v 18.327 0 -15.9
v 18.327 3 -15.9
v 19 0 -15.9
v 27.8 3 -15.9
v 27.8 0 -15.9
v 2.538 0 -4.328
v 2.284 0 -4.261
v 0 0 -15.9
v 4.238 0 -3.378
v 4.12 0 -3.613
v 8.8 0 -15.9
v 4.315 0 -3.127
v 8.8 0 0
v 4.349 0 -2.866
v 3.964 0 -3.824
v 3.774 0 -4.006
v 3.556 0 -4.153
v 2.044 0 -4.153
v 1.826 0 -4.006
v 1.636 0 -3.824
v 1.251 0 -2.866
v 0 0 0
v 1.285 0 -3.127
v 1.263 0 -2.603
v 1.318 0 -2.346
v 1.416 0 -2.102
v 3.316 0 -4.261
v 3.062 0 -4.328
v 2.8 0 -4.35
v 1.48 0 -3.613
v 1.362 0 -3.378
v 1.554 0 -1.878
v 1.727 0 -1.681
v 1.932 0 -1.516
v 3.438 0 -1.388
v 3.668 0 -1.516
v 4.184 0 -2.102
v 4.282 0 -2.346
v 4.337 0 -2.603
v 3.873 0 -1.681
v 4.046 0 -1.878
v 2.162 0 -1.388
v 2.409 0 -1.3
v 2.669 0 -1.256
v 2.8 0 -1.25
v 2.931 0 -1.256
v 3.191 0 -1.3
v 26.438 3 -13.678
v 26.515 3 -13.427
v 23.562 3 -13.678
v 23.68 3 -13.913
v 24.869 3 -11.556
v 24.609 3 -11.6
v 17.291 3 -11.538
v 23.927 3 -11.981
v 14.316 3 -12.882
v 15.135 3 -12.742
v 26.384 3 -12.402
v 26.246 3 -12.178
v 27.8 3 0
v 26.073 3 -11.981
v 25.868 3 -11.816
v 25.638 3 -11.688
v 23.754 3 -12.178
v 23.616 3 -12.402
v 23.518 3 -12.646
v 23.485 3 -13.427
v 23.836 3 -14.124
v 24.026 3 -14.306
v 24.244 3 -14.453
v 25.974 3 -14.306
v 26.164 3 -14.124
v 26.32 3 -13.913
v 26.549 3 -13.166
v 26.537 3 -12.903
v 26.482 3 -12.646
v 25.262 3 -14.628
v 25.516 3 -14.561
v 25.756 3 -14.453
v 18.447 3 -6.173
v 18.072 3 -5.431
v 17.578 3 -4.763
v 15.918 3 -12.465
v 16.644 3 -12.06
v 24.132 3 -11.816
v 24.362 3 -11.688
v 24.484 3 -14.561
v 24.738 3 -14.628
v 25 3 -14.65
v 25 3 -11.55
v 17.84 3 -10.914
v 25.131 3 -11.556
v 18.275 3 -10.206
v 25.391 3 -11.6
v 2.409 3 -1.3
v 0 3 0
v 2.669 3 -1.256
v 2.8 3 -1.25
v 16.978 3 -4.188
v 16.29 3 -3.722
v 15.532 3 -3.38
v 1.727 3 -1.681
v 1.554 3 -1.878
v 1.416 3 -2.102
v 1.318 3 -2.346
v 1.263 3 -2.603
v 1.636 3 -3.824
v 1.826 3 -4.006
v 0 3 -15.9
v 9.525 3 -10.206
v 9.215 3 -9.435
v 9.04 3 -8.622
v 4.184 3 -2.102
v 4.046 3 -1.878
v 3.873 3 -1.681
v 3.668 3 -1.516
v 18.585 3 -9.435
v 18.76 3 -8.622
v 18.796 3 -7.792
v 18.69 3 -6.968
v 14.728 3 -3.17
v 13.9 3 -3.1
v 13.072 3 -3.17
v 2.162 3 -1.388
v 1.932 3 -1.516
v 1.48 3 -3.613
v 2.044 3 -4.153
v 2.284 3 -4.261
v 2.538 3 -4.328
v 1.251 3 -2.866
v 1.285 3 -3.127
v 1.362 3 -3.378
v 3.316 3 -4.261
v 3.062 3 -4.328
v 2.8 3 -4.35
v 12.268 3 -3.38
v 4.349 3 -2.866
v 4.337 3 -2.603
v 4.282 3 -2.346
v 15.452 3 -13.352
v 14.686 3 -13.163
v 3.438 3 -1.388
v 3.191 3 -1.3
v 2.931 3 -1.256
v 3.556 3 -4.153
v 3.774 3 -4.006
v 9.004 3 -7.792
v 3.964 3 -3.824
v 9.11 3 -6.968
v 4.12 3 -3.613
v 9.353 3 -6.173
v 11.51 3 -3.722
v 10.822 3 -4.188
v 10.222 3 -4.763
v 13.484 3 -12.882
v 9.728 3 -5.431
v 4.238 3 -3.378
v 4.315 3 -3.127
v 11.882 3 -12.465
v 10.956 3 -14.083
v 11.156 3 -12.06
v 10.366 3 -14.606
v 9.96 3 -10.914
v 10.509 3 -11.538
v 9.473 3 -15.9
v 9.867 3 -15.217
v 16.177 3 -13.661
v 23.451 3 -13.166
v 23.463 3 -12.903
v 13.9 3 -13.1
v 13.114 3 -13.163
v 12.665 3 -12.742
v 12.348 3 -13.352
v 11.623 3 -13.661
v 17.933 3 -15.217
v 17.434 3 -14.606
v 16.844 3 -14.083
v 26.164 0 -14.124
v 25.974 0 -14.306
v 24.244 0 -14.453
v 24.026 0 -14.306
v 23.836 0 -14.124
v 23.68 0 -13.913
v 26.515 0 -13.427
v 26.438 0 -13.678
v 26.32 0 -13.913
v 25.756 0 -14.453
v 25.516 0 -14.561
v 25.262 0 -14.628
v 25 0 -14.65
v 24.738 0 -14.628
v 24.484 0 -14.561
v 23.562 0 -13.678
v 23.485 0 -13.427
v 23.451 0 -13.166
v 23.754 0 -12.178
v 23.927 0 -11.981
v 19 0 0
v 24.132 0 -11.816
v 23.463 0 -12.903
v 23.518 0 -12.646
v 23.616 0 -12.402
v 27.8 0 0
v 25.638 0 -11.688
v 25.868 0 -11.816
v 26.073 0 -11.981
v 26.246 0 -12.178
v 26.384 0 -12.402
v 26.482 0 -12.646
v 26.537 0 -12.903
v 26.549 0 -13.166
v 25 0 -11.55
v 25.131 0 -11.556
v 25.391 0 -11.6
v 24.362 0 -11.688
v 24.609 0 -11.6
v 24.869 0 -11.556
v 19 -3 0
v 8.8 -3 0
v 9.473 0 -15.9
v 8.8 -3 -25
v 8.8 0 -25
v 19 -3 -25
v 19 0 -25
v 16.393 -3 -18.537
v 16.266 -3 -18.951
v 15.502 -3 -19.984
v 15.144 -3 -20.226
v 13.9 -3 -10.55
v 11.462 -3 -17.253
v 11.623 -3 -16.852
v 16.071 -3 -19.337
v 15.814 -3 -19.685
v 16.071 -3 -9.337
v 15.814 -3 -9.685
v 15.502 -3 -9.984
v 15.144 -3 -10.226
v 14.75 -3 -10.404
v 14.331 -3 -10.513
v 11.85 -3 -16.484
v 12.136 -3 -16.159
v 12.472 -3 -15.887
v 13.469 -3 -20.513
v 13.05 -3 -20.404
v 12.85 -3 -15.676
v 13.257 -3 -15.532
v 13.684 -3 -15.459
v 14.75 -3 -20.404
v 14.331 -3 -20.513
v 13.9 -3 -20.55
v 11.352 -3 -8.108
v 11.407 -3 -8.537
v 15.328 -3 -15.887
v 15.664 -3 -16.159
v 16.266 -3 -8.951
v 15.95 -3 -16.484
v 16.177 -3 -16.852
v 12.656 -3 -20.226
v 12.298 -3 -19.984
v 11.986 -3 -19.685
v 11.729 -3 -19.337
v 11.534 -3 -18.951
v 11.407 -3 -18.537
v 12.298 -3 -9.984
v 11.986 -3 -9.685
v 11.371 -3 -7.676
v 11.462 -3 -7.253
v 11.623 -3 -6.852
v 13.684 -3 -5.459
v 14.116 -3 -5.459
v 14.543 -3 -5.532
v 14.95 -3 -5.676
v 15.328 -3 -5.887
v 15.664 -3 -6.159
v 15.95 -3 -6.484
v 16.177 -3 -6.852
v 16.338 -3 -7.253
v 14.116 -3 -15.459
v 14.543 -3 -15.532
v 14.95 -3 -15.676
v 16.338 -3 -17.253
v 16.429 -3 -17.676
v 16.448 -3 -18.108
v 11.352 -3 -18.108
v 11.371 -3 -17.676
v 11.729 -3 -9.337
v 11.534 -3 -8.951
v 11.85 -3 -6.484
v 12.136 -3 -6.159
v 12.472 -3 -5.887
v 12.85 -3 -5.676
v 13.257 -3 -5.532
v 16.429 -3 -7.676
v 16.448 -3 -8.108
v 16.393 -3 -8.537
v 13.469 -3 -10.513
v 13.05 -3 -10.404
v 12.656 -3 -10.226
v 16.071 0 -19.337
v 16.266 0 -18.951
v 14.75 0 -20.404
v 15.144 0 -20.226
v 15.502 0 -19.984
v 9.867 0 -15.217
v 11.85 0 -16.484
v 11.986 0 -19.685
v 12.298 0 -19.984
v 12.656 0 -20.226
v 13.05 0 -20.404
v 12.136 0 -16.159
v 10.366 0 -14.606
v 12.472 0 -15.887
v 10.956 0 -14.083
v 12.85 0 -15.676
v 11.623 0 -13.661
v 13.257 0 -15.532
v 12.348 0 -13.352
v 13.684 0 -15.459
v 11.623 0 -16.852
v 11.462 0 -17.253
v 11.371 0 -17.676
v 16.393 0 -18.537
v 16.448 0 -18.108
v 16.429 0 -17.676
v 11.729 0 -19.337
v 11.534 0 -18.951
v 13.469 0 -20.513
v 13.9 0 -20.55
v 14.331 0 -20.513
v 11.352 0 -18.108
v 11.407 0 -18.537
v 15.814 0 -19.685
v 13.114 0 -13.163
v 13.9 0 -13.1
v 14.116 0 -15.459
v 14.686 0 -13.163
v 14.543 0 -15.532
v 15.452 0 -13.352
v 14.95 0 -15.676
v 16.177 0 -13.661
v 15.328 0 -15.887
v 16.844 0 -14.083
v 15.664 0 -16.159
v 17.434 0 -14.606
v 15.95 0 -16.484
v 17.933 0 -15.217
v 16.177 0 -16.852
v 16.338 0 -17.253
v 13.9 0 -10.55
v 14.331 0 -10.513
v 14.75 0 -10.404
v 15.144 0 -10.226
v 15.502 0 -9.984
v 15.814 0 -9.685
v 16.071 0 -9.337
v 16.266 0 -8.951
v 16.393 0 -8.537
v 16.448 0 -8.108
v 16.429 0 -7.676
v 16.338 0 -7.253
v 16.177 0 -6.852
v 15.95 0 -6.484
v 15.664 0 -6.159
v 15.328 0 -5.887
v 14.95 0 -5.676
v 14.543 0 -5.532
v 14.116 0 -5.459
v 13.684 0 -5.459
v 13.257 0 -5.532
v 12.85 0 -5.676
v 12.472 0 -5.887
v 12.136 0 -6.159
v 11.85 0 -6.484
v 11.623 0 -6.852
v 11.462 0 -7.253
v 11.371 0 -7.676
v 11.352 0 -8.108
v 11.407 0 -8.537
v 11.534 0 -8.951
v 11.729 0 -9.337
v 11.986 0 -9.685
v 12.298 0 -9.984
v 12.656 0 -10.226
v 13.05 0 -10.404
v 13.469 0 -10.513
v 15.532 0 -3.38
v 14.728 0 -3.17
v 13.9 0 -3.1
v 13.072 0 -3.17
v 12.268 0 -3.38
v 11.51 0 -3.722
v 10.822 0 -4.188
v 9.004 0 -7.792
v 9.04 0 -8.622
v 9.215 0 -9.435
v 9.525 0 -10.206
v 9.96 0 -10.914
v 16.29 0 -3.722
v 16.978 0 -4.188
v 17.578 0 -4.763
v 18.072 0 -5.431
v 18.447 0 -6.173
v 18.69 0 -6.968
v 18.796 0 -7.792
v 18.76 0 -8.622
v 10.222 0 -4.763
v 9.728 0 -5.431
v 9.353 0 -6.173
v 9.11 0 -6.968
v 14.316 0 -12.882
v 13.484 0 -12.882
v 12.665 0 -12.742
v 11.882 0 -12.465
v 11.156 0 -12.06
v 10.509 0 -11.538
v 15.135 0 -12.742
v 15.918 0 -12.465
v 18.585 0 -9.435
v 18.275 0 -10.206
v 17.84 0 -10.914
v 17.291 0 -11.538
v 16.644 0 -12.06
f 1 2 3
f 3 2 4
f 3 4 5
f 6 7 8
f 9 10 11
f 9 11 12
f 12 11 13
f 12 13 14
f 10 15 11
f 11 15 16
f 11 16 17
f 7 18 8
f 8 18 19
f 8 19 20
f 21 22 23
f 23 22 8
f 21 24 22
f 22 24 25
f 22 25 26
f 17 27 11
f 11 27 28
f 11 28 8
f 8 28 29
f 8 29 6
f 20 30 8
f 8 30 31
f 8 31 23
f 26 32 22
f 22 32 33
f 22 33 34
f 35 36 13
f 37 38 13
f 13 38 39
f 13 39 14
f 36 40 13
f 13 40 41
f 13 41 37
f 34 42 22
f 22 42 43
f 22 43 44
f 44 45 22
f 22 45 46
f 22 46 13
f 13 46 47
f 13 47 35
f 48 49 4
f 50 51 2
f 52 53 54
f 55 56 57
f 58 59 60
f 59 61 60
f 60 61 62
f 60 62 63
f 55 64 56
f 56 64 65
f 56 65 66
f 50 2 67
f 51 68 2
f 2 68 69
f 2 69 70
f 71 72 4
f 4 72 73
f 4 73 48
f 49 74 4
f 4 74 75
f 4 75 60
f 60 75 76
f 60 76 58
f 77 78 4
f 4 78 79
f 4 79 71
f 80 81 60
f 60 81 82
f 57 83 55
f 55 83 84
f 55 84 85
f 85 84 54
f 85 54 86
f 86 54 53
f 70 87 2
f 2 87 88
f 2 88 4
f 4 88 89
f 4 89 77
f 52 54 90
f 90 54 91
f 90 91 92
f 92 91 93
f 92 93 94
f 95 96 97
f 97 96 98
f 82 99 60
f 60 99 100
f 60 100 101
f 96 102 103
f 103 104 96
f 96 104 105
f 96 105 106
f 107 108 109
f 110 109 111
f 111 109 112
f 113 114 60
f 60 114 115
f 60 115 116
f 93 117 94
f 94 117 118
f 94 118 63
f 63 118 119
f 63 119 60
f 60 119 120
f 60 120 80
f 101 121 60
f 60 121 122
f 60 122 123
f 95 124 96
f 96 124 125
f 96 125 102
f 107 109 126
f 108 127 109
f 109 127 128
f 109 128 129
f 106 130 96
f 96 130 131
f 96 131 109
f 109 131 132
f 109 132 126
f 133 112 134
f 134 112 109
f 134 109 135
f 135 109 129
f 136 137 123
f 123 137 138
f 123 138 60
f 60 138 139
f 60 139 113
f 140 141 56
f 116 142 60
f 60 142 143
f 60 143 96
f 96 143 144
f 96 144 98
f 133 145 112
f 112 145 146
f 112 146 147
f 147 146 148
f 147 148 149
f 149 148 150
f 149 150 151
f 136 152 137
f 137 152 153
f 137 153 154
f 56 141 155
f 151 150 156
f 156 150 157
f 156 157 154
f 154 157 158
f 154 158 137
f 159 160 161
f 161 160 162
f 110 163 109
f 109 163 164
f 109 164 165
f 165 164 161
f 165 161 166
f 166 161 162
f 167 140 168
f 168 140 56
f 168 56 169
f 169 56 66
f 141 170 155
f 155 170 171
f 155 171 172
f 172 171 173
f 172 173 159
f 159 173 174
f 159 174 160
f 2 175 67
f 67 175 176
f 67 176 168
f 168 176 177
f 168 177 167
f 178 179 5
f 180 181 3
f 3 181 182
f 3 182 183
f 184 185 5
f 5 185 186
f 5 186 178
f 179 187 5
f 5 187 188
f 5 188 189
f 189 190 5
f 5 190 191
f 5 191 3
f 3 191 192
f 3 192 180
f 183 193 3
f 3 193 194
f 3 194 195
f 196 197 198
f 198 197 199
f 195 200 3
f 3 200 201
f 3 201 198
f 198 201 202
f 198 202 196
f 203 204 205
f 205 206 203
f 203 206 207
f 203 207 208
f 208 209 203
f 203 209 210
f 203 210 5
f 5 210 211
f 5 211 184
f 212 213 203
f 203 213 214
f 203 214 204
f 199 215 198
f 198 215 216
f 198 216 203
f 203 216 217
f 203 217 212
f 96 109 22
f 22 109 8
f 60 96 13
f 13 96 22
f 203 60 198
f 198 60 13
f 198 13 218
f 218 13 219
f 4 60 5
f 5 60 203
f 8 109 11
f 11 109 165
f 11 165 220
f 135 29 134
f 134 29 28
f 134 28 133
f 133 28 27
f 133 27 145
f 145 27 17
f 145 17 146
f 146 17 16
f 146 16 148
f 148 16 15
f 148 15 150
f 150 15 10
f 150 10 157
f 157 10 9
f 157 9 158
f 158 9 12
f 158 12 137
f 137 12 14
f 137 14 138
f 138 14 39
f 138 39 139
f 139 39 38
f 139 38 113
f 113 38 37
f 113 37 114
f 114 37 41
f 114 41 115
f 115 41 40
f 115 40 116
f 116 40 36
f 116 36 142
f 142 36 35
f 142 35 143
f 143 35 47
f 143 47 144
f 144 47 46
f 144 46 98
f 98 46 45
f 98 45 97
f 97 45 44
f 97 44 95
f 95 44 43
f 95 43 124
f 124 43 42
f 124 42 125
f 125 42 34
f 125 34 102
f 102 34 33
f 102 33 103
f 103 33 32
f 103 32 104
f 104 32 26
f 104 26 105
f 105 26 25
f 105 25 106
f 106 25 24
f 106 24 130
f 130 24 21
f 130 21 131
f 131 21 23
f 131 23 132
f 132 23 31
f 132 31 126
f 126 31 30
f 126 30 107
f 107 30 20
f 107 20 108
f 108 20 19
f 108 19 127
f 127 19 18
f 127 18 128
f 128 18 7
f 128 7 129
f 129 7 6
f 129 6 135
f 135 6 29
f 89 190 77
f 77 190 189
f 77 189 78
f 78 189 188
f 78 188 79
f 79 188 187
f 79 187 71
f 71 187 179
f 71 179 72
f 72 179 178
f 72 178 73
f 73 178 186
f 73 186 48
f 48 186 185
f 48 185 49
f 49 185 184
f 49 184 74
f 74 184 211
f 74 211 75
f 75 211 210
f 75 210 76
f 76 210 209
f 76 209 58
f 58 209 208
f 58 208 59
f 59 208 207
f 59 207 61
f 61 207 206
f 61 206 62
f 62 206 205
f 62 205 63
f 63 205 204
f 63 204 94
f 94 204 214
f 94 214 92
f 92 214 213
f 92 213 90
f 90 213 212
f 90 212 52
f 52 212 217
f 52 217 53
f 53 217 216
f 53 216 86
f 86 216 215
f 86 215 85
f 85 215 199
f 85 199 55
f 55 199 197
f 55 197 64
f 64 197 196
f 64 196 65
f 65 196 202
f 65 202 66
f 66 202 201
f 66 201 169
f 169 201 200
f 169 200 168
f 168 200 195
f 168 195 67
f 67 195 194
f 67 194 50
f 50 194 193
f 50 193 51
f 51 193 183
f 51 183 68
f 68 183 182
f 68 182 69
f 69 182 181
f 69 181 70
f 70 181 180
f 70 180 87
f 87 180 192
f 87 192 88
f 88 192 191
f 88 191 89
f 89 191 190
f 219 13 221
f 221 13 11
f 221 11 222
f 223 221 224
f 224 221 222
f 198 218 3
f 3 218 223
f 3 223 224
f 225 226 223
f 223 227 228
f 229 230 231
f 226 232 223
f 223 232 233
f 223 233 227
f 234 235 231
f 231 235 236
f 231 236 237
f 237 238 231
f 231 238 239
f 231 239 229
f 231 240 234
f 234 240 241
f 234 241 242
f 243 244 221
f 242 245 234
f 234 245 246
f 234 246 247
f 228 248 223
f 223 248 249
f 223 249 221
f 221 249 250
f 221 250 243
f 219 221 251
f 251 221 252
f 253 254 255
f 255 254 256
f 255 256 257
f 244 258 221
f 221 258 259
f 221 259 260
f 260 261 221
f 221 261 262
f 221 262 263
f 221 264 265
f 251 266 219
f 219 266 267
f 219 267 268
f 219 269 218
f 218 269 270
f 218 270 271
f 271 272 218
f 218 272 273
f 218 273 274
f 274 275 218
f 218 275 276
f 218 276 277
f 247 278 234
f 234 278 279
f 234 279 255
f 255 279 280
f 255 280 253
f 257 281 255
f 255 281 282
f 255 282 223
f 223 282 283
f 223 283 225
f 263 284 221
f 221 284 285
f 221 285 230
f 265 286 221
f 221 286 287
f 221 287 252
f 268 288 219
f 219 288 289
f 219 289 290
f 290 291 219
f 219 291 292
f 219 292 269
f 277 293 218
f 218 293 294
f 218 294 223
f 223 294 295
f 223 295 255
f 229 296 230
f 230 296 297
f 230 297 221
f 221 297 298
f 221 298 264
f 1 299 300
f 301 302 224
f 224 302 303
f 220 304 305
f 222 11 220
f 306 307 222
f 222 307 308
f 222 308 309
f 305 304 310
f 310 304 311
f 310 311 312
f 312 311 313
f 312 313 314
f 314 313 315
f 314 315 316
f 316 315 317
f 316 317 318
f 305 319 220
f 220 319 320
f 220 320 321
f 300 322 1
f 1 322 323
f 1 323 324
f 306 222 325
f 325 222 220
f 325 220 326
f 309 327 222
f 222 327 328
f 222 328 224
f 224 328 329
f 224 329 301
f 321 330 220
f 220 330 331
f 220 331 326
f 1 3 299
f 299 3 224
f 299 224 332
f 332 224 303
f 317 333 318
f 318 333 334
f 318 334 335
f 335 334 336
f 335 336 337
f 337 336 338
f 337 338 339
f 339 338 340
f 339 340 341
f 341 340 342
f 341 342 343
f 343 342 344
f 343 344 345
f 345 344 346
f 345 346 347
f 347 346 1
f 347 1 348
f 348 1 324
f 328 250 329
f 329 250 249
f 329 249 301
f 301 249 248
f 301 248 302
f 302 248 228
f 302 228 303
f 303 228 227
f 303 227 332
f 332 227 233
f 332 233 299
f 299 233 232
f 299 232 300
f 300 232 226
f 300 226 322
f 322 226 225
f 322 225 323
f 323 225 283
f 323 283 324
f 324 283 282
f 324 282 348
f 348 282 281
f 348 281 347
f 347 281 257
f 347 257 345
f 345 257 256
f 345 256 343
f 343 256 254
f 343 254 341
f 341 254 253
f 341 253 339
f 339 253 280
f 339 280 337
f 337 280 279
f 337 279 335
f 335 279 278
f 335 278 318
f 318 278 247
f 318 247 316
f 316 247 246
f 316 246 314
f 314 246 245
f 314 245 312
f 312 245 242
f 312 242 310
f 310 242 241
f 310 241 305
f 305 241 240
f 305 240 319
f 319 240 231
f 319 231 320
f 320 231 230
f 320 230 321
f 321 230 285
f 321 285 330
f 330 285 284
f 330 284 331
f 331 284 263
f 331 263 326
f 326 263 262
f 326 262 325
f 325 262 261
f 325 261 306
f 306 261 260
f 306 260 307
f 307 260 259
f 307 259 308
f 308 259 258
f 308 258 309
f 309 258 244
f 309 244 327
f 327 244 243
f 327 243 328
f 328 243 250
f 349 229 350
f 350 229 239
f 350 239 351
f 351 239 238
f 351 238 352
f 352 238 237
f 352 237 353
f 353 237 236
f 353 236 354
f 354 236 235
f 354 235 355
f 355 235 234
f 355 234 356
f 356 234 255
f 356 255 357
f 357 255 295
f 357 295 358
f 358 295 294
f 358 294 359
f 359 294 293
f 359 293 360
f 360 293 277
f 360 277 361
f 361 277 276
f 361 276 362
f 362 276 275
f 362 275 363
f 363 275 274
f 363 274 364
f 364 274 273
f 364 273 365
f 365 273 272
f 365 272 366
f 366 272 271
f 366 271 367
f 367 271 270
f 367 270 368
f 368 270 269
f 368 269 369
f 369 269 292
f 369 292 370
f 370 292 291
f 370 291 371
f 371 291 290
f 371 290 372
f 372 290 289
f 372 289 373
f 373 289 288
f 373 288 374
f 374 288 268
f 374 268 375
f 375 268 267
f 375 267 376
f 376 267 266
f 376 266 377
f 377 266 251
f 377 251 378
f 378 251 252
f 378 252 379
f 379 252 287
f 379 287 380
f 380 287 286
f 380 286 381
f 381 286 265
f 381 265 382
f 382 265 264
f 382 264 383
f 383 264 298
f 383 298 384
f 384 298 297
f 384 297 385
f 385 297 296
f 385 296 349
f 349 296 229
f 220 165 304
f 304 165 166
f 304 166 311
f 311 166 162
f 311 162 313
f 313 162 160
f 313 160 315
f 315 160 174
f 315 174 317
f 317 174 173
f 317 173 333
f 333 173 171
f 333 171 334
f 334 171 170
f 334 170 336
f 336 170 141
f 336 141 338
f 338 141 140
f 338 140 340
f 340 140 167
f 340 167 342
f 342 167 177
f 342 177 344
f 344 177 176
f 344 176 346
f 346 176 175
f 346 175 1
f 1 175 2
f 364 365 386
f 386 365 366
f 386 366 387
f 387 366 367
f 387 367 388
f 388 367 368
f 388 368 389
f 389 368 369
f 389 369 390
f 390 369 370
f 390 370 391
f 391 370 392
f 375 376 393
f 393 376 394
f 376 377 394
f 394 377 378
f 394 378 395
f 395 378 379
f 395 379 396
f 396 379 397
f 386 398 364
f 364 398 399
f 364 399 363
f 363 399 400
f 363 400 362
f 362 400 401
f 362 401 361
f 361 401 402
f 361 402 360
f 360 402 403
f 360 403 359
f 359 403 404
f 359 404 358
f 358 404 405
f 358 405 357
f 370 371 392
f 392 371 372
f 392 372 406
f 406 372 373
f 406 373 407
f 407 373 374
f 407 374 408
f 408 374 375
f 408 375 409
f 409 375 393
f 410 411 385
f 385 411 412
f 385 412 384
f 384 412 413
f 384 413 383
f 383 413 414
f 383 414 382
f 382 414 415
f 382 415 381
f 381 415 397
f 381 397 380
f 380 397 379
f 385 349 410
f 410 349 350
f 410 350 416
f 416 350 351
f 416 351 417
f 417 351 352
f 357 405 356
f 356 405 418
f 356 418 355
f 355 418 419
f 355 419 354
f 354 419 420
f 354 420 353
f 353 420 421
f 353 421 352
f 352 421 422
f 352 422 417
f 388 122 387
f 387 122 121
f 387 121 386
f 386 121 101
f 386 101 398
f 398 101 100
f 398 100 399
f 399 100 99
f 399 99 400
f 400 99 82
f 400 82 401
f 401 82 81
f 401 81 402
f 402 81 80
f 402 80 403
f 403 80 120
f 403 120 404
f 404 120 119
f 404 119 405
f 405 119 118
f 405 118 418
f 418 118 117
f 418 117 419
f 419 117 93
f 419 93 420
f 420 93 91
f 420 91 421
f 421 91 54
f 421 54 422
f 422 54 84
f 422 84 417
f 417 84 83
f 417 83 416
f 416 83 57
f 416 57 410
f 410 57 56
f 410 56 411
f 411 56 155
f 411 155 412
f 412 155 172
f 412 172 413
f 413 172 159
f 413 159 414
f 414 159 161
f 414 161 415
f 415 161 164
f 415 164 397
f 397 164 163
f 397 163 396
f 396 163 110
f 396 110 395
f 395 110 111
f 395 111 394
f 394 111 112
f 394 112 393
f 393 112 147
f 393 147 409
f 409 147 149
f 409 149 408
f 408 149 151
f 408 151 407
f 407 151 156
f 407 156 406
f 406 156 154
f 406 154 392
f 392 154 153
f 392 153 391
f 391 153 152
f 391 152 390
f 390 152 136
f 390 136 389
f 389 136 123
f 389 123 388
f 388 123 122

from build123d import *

# Parameters (mm, degrees)
SKETCH1_W           = 27.8
SKETCH1_H           = 15.9
SKETCH1_R           = 1.55
BOSS_EXTRUDE1_DEPTH = 3
SKETCH2_W           = 10.2
SKETCH2_H           = 25
BOSS_EXTRUDE2_DEPTH = 3
SKETCH3_R           = 2.55
CUT_EXTRUDE1_DEPTH  = 3
CUT_EXTRUDE4_START  = -3
SKETCH4_R           = 4.9
SKETCH4_R_2         = 2.55
CUT_EXTRUDE4_DEPTH  = 3


with BuildPart() as part:
    # Sketch1 → Boss-Extrude1 (new body)
    with BuildSketch(Plane(origin=(0, 0, 0), x_dir=(1, 0, 0), z_dir=(0, 1, 0))):
        with Locations((13.9, 7.95)):
            Rectangle(SKETCH1_W, SKETCH1_H)
        with Locations(Location((2.8, 2.8, 0), (0, 0, 270))):
            Circle(SKETCH1_R, mode=Mode.SUBTRACT)
        with Locations(Location((25, 13.1, 0), (0, 0, 270))):
            Circle(SKETCH1_R, mode=Mode.SUBTRACT)
    extrude(amount=BOSS_EXTRUDE1_DEPTH)

    # Sketch2 → Boss-Extrude2 (add)
    with BuildSketch(Plane.XZ):
        with Locations((13.9, -12.5)):
            Rectangle(SKETCH2_W, SKETCH2_H)
    extrude(amount=BOSS_EXTRUDE2_DEPTH)

    # Sketch3 → Cut-Extrude1 (cut)
    with BuildSketch(Plane.XZ.offset(3)):
        with Locations(Location((13.9, -8, 0), (0, 0, 270))):
            Circle(SKETCH3_R)
        with Locations(Location((13.9, -18, 0), (0, 0, 270))):
            Circle(SKETCH3_R)
    extrude(amount=-CUT_EXTRUDE1_DEPTH, mode=Mode.SUBTRACT)

    # Sketch4 → Cut-Extrude4 (cut)
    # profile 1 of 3: a face of its own
    with BuildSketch(Plane(origin=(0, 3, 0), x_dir=(1, 0, 0), z_dir=(0, 1, 0)).offset(CUT_EXTRUDE4_START)):
        with BuildLine():
            Line((18.327188724, 15.9), (15.346547614, 15.9))
            Line((15.346547614, 15.9), (12.453452386, 15.9))
            Line((12.453452386, 15.9), (9.472811276, 15.9))
            ThreePointArc((9.472811276, 15.9), (13.9, 13.1), (18.327188724, 15.9))
        make_face()
    # profile 2 of 3: a face of its own
    with BuildSketch(Plane(origin=(0, 3, 0), x_dir=(1, 0, 0), z_dir=(0, 1, 0)).offset(CUT_EXTRUDE4_START)):
        with Locations(Location((13.9, 8, 0), (0, 0, 270))):
            Circle(SKETCH4_R)
        with Locations(Location((13.9, 8, 0), (0, 0, 90))):
            Circle(SKETCH4_R_2, mode=Mode.SUBTRACT)
    # profile 3 of 3: a face of its own
    with BuildSketch(Plane(origin=(0, 3, 0), x_dir=(1, 0, 0), z_dir=(0, 1, 0)).offset(CUT_EXTRUDE4_START)):
        with Locations(Location((13.9, 8, 0), (0, 0, 90))):
            Circle(SKETCH4_R_2)
    extrude(amount=CUT_EXTRUDE4_DEPTH, mode=Mode.SUBTRACT)


solid = part.part
